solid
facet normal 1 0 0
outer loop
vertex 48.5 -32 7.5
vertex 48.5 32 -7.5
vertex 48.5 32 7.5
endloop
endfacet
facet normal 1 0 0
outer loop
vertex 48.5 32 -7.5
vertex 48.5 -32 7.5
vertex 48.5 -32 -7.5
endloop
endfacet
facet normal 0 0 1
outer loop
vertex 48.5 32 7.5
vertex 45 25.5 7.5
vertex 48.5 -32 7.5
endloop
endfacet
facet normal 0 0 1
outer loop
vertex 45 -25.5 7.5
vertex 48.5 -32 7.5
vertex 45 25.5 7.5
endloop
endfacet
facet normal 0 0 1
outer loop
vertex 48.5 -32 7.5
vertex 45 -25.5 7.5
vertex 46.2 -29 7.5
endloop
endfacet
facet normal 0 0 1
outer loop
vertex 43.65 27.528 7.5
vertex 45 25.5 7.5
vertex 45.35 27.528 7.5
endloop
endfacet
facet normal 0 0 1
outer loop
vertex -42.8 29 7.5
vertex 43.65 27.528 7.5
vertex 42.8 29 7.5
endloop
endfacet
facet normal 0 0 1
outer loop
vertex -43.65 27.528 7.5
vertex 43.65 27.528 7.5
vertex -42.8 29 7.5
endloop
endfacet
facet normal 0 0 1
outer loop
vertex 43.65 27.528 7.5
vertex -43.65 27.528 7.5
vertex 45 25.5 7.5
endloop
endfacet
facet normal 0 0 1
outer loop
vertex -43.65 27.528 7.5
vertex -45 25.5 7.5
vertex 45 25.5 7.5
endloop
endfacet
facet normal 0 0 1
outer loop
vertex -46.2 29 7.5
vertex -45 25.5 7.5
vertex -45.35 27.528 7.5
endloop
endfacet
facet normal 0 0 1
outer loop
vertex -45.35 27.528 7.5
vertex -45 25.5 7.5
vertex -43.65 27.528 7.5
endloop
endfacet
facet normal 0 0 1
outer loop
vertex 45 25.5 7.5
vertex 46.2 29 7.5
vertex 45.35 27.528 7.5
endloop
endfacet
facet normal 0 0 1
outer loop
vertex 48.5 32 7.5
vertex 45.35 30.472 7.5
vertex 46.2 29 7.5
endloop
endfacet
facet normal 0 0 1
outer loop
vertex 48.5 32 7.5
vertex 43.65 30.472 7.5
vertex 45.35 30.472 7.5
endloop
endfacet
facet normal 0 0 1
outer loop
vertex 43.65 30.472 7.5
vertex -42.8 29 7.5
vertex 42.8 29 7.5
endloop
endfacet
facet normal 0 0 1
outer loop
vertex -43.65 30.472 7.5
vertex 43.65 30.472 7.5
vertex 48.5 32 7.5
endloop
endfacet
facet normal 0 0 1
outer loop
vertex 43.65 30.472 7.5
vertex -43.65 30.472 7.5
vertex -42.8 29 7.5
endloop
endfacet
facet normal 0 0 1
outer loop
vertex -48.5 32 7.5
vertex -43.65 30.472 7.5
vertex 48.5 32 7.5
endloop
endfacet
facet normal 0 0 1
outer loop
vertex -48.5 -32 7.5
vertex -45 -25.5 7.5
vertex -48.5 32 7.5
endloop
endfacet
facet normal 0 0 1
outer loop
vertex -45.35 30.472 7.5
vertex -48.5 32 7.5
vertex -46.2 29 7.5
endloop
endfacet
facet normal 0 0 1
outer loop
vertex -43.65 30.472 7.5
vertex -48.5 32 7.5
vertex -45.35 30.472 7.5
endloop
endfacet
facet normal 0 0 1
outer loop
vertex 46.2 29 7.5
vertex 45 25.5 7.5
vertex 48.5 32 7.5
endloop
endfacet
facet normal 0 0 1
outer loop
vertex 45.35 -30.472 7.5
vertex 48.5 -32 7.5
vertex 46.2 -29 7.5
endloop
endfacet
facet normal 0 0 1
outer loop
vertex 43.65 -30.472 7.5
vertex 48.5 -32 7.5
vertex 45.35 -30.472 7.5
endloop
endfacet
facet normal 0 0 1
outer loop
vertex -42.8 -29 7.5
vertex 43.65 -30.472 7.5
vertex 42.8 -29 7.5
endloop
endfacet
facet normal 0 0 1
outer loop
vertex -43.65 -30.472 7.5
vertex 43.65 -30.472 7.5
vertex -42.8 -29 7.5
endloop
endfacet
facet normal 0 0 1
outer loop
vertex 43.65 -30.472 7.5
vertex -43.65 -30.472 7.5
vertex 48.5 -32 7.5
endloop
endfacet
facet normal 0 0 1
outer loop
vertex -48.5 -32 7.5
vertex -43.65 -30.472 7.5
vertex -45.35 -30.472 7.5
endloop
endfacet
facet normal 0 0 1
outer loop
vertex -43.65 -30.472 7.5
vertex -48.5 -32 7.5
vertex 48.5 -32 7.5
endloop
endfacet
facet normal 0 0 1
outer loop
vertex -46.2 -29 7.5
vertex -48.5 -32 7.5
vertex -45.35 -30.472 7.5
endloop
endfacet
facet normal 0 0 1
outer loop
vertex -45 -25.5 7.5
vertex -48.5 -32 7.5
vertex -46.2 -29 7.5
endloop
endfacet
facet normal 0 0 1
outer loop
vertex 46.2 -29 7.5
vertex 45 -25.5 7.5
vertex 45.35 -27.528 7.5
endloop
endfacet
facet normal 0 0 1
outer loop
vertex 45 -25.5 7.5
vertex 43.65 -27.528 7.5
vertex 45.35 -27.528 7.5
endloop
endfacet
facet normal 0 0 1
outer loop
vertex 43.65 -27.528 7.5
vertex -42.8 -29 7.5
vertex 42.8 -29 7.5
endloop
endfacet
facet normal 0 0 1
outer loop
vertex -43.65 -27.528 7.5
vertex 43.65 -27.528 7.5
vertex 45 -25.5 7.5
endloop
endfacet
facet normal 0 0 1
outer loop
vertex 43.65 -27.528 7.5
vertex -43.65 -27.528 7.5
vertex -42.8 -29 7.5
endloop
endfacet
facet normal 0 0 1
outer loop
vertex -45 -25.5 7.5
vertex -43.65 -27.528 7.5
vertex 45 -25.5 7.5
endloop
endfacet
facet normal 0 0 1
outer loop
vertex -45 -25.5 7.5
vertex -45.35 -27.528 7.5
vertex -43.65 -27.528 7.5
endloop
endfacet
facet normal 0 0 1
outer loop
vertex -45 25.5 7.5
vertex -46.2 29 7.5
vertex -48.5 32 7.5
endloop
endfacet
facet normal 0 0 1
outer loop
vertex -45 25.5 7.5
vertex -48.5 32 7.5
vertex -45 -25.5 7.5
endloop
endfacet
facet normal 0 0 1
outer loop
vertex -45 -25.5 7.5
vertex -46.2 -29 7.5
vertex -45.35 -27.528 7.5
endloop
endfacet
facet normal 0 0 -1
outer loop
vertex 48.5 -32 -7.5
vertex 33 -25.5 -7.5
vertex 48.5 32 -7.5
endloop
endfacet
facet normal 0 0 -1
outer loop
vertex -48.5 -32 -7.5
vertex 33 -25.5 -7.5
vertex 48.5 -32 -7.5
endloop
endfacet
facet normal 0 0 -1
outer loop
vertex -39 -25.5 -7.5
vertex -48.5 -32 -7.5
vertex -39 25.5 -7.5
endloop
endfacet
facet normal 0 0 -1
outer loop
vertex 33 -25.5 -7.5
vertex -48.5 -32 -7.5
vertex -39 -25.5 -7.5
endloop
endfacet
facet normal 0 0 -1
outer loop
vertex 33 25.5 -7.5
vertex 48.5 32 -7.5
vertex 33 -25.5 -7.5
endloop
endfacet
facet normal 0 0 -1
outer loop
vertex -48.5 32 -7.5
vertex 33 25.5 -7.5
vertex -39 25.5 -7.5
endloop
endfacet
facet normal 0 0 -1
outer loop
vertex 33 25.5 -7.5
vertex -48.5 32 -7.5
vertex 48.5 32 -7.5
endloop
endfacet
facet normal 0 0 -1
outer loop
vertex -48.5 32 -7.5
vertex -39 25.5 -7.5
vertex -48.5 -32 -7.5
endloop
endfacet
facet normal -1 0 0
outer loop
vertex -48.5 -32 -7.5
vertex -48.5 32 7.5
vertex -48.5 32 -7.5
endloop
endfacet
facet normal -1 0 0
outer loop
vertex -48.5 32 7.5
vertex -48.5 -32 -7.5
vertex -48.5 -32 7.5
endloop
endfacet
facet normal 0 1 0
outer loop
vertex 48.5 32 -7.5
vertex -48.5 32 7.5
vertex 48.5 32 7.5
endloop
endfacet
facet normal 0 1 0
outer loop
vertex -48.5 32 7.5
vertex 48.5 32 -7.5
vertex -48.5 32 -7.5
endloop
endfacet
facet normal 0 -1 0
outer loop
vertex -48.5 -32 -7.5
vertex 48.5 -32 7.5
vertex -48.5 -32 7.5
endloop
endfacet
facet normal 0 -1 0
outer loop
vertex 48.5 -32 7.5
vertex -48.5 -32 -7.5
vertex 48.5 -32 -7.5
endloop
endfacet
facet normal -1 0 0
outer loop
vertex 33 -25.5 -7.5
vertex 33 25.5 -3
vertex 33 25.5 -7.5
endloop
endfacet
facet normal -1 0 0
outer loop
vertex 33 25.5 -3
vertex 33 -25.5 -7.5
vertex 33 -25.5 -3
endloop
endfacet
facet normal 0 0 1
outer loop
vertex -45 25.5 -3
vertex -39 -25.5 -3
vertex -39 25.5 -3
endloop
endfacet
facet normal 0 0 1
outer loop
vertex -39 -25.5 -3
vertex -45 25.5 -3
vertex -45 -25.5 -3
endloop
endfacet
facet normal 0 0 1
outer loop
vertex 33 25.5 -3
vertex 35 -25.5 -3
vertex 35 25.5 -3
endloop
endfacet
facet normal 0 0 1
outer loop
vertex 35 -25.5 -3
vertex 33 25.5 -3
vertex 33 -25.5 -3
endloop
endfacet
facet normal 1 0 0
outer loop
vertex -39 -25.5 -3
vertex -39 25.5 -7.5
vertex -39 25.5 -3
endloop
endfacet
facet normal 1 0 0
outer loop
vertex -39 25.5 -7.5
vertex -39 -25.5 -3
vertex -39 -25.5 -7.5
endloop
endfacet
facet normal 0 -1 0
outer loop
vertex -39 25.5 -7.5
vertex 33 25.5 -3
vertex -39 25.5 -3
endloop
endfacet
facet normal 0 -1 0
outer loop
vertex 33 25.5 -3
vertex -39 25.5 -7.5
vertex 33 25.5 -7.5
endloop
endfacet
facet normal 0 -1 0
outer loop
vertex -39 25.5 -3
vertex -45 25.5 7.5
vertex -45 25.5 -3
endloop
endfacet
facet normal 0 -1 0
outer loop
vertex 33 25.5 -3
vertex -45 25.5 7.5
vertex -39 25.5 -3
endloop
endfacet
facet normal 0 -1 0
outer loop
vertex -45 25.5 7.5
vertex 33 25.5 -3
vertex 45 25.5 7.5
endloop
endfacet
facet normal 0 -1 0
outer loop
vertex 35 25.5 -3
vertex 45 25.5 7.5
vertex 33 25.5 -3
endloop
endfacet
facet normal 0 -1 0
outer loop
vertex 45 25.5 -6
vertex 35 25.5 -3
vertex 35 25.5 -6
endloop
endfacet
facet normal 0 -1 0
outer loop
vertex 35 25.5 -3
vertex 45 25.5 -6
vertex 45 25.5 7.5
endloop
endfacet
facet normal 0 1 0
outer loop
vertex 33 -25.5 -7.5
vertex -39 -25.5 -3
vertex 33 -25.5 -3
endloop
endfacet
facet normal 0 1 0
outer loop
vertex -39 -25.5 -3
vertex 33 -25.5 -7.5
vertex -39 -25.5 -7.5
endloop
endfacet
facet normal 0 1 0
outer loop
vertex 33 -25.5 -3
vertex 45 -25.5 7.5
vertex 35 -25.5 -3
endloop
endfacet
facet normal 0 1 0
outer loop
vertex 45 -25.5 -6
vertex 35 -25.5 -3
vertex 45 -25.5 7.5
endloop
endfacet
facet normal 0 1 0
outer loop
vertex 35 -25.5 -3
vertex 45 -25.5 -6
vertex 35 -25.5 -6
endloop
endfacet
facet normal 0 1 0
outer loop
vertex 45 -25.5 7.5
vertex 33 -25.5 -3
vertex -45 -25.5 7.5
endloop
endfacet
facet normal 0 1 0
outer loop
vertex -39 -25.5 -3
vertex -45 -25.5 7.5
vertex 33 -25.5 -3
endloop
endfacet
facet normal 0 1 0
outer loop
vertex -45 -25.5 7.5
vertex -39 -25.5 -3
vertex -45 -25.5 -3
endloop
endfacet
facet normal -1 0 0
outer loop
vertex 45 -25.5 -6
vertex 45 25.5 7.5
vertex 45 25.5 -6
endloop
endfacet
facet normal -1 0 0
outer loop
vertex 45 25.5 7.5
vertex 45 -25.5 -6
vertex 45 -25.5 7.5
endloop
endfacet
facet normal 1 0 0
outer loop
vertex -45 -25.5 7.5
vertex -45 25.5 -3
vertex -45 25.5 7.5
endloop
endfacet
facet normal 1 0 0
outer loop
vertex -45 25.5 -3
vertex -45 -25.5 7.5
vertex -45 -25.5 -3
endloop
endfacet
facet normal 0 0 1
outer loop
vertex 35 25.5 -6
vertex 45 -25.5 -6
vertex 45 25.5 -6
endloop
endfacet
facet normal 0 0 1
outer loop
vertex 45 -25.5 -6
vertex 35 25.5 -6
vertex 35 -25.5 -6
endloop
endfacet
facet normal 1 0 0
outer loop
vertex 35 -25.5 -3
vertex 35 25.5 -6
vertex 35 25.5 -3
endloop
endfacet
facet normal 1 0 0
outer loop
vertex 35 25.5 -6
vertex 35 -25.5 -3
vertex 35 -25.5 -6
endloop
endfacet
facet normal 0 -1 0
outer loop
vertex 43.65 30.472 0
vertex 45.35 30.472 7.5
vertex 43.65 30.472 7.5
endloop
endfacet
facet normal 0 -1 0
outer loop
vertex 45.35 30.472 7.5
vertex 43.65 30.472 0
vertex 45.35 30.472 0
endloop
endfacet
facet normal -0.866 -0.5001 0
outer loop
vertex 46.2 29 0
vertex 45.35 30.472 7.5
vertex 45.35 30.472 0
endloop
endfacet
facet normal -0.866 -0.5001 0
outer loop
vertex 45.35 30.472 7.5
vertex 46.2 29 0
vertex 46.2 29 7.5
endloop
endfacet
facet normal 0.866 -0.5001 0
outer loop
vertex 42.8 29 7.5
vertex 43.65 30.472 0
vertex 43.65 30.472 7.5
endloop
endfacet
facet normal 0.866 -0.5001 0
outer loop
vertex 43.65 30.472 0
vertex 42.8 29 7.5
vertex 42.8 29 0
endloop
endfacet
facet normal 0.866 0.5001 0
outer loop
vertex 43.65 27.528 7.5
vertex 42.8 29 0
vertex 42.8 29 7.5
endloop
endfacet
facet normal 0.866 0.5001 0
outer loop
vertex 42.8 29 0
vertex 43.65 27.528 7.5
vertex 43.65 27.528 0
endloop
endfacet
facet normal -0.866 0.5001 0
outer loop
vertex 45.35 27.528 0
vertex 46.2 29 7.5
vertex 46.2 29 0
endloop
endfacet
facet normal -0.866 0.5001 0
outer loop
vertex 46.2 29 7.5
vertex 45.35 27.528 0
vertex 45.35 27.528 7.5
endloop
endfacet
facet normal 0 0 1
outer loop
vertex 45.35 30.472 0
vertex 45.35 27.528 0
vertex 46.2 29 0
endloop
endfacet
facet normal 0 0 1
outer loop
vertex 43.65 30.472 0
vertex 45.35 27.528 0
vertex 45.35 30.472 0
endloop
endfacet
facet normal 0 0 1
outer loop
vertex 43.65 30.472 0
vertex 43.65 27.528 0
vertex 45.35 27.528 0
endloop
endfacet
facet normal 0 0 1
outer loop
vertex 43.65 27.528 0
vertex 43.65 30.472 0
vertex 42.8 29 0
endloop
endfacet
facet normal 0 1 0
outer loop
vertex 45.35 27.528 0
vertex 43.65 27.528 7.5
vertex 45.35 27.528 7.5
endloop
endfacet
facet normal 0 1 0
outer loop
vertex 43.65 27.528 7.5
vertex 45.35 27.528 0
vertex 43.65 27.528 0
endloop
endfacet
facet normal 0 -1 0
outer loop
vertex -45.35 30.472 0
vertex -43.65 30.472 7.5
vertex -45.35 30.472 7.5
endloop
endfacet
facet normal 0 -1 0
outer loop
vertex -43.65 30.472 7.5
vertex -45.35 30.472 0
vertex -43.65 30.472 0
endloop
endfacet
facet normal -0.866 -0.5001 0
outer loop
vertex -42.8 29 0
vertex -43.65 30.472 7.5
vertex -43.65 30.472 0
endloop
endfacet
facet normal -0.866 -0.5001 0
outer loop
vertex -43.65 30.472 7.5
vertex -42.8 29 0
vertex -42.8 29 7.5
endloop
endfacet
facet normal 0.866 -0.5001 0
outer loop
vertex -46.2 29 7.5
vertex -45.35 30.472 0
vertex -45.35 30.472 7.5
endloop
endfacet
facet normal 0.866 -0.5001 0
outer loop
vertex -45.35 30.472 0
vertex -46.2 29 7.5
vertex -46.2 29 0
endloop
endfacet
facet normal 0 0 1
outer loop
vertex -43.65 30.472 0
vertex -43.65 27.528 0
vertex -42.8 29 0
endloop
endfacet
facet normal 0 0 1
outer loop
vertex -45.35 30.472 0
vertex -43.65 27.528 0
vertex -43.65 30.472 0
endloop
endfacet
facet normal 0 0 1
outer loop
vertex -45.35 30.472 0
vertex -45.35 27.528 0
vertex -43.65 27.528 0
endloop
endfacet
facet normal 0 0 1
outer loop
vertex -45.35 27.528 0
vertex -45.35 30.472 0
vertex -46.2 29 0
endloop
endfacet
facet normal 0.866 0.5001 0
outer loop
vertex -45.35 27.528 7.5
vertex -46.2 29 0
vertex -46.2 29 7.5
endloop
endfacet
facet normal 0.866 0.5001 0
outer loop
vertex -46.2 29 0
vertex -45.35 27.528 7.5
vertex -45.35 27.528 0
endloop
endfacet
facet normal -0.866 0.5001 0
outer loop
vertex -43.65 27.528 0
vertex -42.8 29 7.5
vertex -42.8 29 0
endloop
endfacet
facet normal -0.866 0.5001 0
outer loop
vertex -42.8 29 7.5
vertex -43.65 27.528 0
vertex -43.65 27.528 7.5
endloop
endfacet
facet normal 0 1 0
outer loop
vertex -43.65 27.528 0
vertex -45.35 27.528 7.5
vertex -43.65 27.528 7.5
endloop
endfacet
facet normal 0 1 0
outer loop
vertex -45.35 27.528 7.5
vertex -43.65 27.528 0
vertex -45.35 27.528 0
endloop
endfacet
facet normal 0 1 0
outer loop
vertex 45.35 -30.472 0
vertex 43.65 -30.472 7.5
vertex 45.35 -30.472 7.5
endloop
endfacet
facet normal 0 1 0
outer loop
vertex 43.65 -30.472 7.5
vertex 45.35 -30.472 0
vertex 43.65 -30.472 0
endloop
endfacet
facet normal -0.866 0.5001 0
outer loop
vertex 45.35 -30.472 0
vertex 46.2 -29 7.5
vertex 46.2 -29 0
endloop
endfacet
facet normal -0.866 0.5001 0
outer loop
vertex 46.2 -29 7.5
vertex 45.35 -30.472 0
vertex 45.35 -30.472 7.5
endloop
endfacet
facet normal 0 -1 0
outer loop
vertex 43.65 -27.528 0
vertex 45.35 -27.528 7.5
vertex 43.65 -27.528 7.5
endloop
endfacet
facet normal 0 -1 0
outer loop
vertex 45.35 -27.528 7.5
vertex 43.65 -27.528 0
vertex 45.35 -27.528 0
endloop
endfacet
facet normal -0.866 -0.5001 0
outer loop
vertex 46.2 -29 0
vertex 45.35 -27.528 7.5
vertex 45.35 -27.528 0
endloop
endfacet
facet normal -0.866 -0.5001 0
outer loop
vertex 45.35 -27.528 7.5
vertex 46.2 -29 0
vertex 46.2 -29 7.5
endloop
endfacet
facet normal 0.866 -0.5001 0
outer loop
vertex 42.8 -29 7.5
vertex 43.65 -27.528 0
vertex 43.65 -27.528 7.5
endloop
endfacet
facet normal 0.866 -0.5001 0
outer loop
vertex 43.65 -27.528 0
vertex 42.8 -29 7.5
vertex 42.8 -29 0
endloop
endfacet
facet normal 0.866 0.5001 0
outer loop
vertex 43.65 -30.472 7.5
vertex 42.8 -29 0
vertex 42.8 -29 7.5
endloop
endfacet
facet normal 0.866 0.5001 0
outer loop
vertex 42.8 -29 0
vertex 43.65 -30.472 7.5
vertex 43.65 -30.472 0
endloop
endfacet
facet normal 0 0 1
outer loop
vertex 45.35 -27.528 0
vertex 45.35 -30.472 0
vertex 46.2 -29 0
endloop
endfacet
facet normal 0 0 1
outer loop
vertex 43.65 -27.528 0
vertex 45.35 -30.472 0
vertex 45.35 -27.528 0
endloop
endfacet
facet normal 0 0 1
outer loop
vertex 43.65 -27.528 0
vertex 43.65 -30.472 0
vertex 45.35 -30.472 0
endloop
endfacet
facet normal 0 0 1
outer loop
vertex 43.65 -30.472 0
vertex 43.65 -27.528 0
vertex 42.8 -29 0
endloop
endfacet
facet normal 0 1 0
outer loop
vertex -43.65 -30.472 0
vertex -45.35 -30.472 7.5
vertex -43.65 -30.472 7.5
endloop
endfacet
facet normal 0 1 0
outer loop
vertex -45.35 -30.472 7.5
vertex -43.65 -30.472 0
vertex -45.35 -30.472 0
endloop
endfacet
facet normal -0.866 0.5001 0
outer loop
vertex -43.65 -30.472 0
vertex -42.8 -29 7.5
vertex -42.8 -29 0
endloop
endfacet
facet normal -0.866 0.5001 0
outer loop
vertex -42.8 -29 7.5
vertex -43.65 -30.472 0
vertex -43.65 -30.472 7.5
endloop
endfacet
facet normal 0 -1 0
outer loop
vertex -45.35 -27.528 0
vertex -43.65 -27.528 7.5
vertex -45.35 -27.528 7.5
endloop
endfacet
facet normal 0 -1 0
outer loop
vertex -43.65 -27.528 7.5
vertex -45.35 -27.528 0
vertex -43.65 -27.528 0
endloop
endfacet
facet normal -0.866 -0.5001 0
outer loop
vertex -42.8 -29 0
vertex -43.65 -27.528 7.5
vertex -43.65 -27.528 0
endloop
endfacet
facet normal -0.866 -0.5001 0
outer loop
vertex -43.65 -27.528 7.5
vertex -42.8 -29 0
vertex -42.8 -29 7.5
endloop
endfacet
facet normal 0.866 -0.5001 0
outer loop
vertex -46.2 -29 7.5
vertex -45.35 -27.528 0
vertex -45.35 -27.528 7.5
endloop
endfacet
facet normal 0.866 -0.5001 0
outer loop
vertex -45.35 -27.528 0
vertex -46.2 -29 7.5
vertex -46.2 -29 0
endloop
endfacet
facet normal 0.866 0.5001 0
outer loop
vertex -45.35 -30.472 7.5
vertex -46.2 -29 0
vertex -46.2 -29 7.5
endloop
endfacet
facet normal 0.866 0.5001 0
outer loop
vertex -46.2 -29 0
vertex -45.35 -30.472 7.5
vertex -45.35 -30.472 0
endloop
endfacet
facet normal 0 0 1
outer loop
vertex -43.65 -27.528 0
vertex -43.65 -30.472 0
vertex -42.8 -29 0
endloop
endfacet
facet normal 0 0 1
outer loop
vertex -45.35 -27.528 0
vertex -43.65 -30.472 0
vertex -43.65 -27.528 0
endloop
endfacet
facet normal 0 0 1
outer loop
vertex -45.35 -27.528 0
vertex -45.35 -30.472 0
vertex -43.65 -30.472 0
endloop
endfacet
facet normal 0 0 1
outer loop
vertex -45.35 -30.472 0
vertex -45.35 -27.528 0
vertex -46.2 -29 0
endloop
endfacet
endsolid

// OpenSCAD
//頭4.8(2.4)(2.9)mmネジ3.4(1.7)mmナット5.8(2.9)(3.4)mm
difference() {
    // 外枠（厚み6.5mm）
    cube([97, 64,15 ], center = true);//外装

    //ディスプレイ部
    translate([-3,0,-7.5])
    cube([72, 51,9], center = true);

    //本体部
    translate([0,0,7.5])
    cube([90, 51,21], center = true);

    //アンテナ部
    translate([0,0,7.5])
    cube([69.5, 51,4], center = true);

    //横端子部
    translate([40,0,0])
    cube([10, 51,12], center = true);


    //ネジ
    translate([95/2-3,60/2-1,0])
    cylinder(h = 10, r = 1.7, center = false);

    translate([-(95/2-3),60/2-1,0])
    cylinder(h = 10, r = 1.7, center = false);

    translate([95/2-3,-(60/2-1),0])
    cylinder(h = 10, r = 1.7, center = false);

    translate([-(95/2-3),-(60/2-1),0])
    cylinder(h = 10, r = 1.7, center = false);



   
}
